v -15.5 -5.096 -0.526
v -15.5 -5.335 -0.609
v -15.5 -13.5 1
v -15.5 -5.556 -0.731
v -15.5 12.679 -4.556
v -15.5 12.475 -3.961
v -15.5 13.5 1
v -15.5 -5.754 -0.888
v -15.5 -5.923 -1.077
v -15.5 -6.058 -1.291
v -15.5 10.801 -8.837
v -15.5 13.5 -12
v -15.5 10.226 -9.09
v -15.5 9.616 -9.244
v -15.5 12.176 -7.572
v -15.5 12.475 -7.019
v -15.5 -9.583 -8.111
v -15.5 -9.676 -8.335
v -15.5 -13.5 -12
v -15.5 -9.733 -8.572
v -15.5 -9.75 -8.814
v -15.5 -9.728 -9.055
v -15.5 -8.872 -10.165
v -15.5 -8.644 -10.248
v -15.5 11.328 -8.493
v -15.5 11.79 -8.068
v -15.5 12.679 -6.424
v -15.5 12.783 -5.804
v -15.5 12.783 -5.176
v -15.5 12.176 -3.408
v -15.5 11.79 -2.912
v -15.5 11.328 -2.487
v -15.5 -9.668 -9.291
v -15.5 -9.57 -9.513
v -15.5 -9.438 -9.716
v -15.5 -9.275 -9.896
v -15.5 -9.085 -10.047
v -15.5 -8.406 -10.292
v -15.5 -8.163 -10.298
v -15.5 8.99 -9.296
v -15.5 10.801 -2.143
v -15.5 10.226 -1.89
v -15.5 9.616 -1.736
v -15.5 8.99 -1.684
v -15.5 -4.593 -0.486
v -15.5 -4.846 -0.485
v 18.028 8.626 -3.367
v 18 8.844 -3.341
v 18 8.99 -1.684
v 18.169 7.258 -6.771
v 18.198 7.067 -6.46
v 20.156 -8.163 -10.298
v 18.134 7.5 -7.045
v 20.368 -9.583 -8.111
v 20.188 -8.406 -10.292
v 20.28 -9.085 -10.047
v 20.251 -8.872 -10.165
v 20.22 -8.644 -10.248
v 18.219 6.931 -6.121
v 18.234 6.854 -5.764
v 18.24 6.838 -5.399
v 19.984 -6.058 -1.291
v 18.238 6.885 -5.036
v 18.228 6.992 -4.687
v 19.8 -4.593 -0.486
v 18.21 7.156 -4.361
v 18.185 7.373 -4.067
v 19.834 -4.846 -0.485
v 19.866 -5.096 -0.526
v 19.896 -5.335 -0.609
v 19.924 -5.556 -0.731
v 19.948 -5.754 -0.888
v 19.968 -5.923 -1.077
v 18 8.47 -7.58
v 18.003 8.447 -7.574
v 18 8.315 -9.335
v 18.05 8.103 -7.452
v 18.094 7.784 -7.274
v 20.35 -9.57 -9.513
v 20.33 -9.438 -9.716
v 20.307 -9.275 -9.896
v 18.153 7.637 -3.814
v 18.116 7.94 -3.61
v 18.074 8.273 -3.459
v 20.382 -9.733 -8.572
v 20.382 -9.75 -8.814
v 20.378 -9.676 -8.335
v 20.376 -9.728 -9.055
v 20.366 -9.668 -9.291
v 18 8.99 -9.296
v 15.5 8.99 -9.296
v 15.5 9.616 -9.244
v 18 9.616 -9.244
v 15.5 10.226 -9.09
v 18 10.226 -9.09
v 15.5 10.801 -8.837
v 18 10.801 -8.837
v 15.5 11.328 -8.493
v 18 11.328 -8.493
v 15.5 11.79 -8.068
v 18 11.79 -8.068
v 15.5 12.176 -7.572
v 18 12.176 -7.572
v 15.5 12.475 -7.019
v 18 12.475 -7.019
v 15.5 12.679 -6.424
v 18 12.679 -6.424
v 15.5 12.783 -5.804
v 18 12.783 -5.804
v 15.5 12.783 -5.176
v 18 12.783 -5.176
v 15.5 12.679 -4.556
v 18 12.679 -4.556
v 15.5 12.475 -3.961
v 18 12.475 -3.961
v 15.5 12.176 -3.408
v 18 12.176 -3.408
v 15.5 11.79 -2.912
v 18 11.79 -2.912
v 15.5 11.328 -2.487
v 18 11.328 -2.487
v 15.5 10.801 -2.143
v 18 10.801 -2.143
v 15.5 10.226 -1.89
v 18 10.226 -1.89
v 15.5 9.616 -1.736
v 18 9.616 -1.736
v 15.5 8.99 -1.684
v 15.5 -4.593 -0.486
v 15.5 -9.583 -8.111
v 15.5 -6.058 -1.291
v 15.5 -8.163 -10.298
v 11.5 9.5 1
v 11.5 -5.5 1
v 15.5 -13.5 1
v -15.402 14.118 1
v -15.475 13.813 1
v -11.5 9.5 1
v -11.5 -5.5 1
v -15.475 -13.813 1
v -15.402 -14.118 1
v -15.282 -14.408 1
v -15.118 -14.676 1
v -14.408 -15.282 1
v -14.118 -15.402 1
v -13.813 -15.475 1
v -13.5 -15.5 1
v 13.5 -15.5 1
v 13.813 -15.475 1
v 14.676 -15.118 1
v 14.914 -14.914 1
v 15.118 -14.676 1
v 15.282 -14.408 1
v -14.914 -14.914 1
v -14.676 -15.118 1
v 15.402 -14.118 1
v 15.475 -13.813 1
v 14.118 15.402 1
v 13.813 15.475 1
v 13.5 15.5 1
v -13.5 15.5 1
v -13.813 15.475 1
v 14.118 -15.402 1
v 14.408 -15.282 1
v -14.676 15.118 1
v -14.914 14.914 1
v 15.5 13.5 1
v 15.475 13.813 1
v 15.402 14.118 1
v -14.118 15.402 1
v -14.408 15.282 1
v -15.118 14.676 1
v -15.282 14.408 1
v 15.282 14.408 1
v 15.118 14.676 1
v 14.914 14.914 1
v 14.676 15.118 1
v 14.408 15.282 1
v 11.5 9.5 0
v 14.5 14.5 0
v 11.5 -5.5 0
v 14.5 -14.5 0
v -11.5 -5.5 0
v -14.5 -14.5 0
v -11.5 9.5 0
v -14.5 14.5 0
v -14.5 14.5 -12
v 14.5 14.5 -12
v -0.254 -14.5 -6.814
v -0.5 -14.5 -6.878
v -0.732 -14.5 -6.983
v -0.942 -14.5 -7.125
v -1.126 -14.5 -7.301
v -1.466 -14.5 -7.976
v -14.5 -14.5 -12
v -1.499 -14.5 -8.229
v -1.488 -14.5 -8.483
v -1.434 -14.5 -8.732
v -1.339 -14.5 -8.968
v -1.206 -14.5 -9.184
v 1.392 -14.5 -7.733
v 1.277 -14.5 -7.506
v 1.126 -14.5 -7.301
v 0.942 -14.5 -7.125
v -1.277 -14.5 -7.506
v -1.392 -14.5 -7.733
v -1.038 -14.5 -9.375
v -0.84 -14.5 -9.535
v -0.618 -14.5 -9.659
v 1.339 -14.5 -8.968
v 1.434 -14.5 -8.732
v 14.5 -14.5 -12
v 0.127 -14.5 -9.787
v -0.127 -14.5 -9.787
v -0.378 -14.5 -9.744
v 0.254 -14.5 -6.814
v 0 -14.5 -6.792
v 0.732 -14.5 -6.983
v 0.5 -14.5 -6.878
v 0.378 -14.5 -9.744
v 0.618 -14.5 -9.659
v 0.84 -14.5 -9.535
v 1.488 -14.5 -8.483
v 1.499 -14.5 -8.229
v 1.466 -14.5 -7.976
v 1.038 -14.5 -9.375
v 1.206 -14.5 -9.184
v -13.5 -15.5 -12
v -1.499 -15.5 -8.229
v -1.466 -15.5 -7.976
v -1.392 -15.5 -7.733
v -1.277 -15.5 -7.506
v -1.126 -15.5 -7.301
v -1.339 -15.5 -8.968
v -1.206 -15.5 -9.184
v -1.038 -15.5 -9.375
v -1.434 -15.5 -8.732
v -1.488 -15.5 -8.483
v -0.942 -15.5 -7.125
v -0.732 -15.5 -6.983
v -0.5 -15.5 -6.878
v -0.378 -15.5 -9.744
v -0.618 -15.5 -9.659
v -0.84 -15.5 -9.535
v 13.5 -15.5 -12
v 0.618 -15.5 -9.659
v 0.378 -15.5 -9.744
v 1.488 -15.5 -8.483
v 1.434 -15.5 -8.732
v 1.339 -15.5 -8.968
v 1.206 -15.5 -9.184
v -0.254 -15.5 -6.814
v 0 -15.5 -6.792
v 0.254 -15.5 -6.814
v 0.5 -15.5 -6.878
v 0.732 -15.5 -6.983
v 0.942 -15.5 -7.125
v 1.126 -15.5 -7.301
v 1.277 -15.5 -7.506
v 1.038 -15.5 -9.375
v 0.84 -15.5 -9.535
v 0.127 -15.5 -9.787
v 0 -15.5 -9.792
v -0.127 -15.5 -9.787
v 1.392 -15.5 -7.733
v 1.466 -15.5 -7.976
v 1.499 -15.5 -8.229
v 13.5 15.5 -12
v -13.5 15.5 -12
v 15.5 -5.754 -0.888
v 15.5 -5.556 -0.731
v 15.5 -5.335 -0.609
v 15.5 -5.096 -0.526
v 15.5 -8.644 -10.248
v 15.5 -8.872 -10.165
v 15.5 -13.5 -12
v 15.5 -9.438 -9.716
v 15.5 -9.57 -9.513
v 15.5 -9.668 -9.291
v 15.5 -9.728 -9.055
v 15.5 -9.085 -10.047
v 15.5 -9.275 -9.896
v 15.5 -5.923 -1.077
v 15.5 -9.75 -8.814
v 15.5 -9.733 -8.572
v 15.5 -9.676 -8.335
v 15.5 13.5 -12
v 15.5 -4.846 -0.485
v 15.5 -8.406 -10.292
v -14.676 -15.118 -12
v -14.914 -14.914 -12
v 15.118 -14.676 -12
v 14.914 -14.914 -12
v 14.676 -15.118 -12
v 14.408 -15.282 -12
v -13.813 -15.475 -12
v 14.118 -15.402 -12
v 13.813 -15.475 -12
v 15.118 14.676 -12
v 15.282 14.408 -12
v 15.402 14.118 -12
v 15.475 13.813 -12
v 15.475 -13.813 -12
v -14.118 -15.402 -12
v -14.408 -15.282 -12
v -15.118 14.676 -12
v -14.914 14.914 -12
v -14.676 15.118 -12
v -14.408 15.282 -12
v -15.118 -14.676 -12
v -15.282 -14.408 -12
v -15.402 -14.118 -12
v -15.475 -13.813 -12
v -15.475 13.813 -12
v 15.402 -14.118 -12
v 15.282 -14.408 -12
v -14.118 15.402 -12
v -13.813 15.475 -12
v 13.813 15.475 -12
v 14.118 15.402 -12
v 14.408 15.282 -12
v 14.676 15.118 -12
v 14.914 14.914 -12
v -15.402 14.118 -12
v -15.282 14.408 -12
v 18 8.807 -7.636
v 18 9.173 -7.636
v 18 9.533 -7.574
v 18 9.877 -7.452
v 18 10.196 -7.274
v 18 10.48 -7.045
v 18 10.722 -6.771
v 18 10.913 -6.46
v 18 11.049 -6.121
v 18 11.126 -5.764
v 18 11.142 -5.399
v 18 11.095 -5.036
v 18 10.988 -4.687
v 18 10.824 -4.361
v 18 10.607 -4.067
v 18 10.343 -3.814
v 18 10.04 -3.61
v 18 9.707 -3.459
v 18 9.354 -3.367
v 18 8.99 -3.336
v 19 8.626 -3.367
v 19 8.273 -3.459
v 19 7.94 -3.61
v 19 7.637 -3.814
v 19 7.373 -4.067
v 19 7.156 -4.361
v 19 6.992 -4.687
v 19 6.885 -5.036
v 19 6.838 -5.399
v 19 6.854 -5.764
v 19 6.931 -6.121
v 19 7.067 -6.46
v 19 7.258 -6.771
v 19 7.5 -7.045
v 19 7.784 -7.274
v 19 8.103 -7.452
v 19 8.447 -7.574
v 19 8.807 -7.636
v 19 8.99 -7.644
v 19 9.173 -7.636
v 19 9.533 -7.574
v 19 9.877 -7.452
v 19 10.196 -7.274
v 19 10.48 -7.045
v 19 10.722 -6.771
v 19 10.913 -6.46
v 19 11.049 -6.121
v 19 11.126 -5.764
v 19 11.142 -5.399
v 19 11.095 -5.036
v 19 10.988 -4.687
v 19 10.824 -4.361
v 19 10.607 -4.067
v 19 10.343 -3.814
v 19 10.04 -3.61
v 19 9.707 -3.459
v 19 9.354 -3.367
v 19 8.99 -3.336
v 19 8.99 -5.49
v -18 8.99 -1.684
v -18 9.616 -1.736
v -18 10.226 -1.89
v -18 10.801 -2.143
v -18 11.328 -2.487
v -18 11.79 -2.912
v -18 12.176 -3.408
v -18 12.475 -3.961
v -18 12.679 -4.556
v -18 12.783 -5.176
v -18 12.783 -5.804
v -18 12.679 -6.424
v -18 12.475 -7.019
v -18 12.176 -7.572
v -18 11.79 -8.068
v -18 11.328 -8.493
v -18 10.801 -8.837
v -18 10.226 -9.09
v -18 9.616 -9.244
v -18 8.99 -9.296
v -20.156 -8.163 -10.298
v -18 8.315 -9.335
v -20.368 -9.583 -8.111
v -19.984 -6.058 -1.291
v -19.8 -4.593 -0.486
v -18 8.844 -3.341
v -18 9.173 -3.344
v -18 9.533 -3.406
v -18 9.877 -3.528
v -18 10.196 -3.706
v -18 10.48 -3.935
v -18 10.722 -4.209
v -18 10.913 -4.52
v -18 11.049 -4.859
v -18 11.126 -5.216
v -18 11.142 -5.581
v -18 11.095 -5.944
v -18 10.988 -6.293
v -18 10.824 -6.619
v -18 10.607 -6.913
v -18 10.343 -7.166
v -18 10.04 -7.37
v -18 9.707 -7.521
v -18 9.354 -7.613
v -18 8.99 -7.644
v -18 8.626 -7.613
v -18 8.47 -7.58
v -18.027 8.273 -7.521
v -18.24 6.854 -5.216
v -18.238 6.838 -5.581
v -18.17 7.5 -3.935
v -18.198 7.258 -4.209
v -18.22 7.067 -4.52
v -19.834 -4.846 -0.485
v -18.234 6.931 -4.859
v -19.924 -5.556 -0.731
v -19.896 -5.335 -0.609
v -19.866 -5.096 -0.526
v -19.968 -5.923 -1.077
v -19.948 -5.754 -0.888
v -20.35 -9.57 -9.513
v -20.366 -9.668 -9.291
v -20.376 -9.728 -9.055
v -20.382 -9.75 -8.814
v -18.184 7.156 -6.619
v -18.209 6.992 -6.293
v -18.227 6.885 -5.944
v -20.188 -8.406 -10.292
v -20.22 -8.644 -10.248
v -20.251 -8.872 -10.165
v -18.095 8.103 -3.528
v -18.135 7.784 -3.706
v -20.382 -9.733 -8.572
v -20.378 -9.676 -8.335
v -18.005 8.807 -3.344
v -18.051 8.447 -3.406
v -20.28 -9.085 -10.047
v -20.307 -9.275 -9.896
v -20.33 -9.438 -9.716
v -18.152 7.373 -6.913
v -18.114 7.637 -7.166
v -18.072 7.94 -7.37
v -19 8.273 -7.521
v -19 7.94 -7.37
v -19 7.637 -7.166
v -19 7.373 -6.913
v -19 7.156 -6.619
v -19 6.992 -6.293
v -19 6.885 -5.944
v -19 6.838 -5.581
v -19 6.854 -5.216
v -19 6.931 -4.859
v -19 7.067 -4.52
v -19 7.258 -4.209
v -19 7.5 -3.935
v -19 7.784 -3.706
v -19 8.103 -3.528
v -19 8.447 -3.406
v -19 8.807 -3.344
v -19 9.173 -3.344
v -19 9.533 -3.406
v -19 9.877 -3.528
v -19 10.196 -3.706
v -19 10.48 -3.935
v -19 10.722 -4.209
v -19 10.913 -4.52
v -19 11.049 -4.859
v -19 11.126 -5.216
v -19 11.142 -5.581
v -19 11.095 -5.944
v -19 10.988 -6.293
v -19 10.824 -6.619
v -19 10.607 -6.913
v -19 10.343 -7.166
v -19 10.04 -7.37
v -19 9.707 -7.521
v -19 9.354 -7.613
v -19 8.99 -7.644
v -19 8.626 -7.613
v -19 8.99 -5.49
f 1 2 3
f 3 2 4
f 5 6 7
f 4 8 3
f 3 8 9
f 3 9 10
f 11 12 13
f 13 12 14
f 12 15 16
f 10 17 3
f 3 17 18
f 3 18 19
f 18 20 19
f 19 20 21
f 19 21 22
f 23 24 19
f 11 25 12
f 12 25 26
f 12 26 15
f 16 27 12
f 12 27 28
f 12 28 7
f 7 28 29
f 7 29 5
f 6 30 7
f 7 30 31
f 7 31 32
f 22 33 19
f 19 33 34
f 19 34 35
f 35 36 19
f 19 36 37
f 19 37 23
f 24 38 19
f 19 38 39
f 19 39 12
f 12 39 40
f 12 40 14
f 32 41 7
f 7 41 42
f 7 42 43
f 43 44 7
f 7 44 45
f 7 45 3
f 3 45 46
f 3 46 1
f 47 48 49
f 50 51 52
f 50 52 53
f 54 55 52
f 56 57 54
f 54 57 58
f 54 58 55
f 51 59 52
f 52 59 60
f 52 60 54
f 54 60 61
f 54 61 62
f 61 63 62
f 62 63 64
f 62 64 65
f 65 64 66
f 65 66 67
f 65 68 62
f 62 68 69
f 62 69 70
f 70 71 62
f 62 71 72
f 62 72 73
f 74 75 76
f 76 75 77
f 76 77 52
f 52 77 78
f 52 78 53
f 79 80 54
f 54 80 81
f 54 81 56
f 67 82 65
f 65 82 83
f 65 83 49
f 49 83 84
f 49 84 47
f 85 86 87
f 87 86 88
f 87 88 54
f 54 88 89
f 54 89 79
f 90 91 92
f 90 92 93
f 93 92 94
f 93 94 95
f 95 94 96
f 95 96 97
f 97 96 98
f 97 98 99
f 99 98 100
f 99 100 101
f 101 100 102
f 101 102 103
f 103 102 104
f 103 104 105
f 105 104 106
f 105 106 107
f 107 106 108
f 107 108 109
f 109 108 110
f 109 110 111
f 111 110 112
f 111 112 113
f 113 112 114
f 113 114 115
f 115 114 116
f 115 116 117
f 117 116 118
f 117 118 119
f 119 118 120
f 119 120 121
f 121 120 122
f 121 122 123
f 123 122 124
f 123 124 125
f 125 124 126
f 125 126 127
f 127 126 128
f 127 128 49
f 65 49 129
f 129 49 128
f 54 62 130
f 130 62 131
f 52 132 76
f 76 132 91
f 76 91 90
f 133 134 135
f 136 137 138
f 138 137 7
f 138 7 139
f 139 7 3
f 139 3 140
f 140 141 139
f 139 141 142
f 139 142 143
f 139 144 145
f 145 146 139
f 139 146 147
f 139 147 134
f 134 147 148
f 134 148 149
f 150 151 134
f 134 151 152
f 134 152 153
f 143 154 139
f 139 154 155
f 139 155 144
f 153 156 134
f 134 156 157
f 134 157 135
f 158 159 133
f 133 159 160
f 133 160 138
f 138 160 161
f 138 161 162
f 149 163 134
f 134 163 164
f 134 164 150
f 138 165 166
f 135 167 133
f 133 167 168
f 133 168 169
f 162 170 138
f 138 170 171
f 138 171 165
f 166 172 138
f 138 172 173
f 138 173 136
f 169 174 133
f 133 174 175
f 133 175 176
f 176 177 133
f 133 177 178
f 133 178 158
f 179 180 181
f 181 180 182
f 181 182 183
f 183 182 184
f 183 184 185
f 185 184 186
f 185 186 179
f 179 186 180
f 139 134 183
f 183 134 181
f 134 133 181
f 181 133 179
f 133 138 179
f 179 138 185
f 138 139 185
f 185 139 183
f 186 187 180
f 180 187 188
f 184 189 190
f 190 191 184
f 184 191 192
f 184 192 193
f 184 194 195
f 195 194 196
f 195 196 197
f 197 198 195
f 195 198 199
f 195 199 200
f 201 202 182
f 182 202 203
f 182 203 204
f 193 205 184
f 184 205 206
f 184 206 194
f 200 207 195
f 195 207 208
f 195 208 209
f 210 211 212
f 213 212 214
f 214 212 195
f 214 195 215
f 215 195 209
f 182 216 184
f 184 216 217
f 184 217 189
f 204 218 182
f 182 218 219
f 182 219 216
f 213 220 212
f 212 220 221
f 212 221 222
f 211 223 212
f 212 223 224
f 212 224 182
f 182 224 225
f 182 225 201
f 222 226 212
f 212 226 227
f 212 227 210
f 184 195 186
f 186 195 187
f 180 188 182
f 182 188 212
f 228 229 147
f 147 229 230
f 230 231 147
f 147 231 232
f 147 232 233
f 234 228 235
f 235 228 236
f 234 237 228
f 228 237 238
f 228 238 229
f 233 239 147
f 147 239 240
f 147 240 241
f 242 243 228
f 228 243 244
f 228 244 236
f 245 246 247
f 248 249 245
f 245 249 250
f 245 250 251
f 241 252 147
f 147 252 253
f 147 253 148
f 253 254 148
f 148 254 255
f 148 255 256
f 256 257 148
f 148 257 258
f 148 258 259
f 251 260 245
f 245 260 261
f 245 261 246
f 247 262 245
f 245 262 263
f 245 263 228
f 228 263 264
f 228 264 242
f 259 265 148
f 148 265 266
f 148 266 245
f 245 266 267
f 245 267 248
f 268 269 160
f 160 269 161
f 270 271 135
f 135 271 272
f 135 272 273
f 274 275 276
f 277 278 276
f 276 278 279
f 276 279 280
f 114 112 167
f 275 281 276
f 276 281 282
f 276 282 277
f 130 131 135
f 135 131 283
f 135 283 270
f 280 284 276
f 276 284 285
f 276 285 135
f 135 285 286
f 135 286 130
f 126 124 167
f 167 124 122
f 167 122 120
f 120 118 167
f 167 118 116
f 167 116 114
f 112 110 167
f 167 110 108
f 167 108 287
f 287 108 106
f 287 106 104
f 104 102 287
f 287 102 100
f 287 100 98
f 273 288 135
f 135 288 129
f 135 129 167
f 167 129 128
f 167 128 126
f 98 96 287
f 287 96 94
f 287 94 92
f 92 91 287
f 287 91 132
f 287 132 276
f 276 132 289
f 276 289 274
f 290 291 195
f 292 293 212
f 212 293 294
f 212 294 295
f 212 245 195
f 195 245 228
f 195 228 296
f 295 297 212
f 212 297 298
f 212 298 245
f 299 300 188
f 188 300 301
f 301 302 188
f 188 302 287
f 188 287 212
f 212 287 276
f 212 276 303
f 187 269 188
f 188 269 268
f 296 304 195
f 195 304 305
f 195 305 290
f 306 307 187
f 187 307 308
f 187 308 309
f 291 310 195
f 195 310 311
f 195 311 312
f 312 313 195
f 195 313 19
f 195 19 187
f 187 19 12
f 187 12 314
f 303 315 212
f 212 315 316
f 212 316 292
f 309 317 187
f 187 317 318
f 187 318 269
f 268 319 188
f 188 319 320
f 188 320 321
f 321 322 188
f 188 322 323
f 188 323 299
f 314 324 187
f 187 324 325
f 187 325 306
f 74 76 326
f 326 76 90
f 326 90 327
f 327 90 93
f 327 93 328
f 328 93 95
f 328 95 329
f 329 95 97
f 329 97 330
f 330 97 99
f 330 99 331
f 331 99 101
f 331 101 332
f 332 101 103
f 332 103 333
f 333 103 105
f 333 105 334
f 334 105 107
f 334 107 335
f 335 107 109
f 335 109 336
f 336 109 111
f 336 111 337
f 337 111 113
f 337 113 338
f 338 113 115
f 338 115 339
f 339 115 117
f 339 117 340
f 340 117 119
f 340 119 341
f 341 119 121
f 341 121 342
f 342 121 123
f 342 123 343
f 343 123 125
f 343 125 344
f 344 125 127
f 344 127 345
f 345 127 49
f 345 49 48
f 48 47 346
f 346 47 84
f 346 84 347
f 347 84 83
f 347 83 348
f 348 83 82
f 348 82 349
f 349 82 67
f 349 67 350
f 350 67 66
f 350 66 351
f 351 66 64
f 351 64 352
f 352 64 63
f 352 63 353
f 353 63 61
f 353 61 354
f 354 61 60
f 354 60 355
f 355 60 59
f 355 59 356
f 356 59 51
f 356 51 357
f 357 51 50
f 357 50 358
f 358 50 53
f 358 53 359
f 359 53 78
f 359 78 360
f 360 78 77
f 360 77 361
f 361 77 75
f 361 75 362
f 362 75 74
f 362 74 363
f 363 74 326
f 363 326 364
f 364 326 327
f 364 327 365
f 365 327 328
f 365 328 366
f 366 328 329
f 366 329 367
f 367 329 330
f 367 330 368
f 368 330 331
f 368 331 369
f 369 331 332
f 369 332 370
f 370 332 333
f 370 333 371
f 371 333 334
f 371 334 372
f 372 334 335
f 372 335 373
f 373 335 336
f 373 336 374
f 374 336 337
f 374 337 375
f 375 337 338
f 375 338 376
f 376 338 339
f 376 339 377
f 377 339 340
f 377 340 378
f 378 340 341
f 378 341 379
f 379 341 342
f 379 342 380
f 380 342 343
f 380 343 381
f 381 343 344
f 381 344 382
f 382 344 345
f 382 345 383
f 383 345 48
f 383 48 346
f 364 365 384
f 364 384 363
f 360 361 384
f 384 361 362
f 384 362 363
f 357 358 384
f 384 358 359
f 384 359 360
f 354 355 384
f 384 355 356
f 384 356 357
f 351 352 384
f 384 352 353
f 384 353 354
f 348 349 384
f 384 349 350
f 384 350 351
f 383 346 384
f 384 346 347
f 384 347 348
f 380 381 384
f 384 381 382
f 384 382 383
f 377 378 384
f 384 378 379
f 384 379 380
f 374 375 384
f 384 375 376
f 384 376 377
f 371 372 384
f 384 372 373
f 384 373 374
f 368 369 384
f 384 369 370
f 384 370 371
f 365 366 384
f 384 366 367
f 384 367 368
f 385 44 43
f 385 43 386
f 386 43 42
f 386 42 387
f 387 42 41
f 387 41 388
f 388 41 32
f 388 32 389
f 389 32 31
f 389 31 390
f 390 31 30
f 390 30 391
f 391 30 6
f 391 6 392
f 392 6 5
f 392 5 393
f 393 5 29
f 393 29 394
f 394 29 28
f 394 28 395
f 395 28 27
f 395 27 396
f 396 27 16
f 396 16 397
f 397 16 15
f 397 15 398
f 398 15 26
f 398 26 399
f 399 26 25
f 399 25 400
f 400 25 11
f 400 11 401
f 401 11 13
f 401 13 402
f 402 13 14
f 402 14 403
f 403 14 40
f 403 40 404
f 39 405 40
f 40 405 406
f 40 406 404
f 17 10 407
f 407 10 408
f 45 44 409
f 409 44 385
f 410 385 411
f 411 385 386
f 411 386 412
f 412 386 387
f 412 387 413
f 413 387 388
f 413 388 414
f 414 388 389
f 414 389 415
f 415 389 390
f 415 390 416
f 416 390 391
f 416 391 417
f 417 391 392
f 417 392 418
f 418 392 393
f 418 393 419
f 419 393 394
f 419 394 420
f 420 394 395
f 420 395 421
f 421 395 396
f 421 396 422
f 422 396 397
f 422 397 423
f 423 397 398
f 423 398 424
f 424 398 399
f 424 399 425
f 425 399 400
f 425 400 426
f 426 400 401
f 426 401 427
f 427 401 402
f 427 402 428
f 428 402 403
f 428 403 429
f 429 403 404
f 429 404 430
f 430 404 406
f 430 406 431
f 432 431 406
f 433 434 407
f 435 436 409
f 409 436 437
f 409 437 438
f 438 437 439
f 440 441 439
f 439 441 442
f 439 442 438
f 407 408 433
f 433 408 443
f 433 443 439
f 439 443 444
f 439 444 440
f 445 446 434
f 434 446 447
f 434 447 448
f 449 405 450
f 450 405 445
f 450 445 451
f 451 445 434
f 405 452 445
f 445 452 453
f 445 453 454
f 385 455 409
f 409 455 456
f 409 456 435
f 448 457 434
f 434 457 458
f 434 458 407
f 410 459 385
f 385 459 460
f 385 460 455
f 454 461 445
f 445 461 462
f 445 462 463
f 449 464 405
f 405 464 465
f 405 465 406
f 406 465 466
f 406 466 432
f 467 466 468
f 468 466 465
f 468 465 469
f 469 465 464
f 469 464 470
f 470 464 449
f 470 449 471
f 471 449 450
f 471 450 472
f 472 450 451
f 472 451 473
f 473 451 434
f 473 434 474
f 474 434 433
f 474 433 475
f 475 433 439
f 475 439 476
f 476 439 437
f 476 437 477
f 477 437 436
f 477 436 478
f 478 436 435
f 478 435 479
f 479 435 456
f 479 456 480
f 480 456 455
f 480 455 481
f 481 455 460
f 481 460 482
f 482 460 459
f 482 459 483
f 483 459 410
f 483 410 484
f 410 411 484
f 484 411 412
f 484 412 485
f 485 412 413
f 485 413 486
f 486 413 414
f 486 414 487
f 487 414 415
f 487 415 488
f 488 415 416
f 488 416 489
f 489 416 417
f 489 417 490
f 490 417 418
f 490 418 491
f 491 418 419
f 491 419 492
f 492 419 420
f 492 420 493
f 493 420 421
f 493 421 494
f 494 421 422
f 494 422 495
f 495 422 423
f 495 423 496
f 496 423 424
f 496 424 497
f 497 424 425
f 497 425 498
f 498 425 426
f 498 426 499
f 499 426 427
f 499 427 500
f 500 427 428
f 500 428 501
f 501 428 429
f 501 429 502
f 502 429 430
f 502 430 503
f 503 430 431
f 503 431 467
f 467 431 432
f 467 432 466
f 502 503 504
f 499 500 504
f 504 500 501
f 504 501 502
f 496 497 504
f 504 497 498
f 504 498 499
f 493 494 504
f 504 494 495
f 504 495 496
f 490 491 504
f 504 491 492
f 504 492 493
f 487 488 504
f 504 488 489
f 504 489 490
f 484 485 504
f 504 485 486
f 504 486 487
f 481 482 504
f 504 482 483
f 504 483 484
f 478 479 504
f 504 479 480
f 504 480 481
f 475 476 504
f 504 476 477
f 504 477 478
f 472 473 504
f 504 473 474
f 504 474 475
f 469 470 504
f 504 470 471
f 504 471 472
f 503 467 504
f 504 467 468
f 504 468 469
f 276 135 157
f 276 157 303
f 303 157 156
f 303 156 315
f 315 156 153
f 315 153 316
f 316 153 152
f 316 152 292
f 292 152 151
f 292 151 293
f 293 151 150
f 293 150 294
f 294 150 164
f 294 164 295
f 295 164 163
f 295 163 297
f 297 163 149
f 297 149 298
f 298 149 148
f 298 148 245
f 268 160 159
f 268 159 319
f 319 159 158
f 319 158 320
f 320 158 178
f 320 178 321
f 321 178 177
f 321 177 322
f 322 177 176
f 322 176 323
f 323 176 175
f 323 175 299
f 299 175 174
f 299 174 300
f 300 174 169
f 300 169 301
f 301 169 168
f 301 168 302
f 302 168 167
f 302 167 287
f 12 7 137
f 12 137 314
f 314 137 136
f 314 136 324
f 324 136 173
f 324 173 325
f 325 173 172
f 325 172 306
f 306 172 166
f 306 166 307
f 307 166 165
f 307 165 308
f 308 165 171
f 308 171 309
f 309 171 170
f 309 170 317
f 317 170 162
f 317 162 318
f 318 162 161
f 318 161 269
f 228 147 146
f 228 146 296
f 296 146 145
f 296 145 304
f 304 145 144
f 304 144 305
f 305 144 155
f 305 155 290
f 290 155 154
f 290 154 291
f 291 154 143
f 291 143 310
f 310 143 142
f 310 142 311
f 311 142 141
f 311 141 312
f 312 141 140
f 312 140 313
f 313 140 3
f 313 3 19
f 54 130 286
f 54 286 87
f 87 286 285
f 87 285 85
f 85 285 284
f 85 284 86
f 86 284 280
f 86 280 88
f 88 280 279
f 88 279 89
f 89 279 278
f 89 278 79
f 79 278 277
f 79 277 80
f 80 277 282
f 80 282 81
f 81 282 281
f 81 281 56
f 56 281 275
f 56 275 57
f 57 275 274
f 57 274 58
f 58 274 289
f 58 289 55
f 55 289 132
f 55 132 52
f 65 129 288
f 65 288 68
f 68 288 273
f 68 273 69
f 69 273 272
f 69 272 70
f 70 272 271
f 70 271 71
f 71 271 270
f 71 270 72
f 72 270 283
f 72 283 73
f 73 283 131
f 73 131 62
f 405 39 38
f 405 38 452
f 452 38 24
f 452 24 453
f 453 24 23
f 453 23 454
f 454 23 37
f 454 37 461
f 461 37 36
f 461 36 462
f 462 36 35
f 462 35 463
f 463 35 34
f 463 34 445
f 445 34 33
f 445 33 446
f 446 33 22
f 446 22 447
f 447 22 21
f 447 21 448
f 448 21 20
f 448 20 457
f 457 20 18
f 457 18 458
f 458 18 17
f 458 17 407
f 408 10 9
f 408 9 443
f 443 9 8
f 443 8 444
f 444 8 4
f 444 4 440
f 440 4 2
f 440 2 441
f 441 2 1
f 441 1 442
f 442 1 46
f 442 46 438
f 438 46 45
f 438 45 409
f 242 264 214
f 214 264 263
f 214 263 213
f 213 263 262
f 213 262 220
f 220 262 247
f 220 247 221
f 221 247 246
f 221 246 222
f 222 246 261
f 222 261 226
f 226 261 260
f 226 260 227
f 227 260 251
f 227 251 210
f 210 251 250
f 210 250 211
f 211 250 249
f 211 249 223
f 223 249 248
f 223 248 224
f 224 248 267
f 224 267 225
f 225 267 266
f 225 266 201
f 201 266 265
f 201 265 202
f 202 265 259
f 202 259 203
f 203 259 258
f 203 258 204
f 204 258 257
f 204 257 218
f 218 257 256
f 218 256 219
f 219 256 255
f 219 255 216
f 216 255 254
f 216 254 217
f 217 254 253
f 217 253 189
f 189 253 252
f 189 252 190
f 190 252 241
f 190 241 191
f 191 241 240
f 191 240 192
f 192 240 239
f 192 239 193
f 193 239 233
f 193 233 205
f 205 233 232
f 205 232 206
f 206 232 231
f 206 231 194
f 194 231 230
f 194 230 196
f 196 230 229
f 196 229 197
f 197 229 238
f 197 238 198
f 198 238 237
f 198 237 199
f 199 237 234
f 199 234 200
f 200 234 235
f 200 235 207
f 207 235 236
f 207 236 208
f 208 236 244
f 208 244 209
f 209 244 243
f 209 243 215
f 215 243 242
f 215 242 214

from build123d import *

# Parameters (mm, degrees)
SKETCH_1_W          = 29
SKETCH_1_H          = 29
EXTRUDE_1_DEPTH     = 1
SKETCH_2_W          = 31
SKETCH_2_H          = 31
SKETCH_2_W_2        = 29
SKETCH_2_H_2        = 29
EXTRUDE_2_DEPTH     = 13
EXTRUDE_4_DEPTH     = 5
CUT_EXTRUDE_START   = -14
CUT_EXTRUDE_2_DEPTH = 27
SKETCH_5_R          = 2.15366908
EXTRUDE_5_DEPTH     = 1
FILLET_2_R          = 2
FILLET_3_R          = 1.5
SKETCH_6_R          = 1.5
CUT_EXTRUDE_3_DEPTH = 10


with BuildPart() as part:
    # 草图1 → 凸台-拉伸1 (new body)
    with BuildSketch(Plane.XY):
        Rectangle(SKETCH_1_W, SKETCH_1_H)
        Polygon((-11.5, 0), (-11.5, 9.5), (11.5, 9.5), (11.5, -5.5), (-11.5, -5.5), align=None, mode=Mode.SUBTRACT)
    extrude(amount=EXTRUDE_1_DEPTH)

    # 草图2 → 凸台-拉伸2 (add)
    with BuildSketch(Plane.XY.offset(1)):
        Rectangle(SKETCH_2_W, SKETCH_2_H)
        Rectangle(SKETCH_2_W_2, SKETCH_2_H_2, mode=Mode.SUBTRACT)
    extrude(amount=-EXTRUDE_2_DEPTH)

    # 草图3 → 凸台-拉伸4 (add)
    with BuildSketch(Plane(origin=(15.5, 0, 0), x_dir=(0, 0, -1), z_dir=(1, 0, 0))):
        with BuildLine():
            Line((1.684082639, 8.989995997), (0.397094894, -5.595641246))
            Line((0.397094894, -5.595641246), (10.451208148, -10.79214922))
            Line((10.451208148, -10.79214922), (9.295909354, 8.989995997))
            ThreePointArc((9.295909354, 8.989995997), (5.489995997, 12.795909354), (1.684082639, 8.989995997))
        make_face()
    extrude_4 = extrude(amount=EXTRUDE_4_DEPTH)

    # 草图4 → 切除-拉伸2 (cut)
    with BuildSketch(Plane(origin=(0, -0.077997079, -0.883953322), x_dir=(1, 0, 0), z_dir=(0, 0.08789514896151537, 0.9961297319069606)).offset(CUT_EXTRUDE_START)):
        Polygon((18, 9.103224997), (20.5, -9.831770213), (20.5, 13.243659675), (18, 13.243659675), align=None)
    cut_extrude_2 = extrude(amount=CUT_EXTRUDE_2_DEPTH, mode=Mode.SUBTRACT)

    # 草图5 → 凸台-拉伸5 (add)
    with BuildSketch(Plane(origin=(18, 0, 0), x_dir=(0, 0, -1), z_dir=(1, 0, 0))):
        with Locations(Location((5.489995997, 8.989995997, 0), (0, 0, 183.893189549))):
            Circle(SKETCH_5_R)
    extrude_5 = extrude(amount=EXTRUDE_5_DEPTH)

    # 镜向1: 凸台-拉伸4, 切除-拉伸2, 凸台-拉伸5 across plane
    add(extrude_4.mirror(Plane(origin=(0, 0, 0), x_dir=(0, 0, 1), z_dir=(1, 0, 0))))
    add(cut_extrude_2.mirror(Plane(origin=(0, 0, 0), x_dir=(0, 0, 1), z_dir=(1, 0, 0))), mode=Mode.SUBTRACT)
    add(extrude_5.mirror(Plane(origin=(0, 0, 0), x_dir=(0, 0, 1), z_dir=(1, 0, 0))))

    # 圆角2
    fillet_2_edges = [part.edges().sort_by_distance(p)[0] for p in [
        (15.5, -15.5, -5.5),
        (-15.5, -15.5, -5.5),
        (-15.5, 15.5, -5.5),
        (15.5, 15.5, -5.5),
    ]]
    fillet(fillet_2_edges, radius=FILLET_2_R)

    # 圆角3
    fillet_3_edges = [part.edges().sort_by_distance(p)[0] for p in [
        (-18, -10.79214922, -10.451208148),
        (-17.716616755, -5.595641246, -0.397094894),
        (18, -10.79214922, -10.451208148),
        (17.716616755, -5.595641246, -0.397094894),
    ]]
    fillet(fillet_3_edges, radius=FILLET_3_R)

    # 草图6 → 切除-拉伸3 (cut)
    with BuildSketch(Plane(origin=(0, -14.5, 0), x_dir=(1, 0, 0), z_dir=(0, 1, 0))):
        with Locations(Location((0, 8.292466775, 0), (0, 0, 270))):
            Circle(SKETCH_6_R)
    extrude(amount=-CUT_EXTRUDE_3_DEPTH, mode=Mode.SUBTRACT)


solid = part.part
